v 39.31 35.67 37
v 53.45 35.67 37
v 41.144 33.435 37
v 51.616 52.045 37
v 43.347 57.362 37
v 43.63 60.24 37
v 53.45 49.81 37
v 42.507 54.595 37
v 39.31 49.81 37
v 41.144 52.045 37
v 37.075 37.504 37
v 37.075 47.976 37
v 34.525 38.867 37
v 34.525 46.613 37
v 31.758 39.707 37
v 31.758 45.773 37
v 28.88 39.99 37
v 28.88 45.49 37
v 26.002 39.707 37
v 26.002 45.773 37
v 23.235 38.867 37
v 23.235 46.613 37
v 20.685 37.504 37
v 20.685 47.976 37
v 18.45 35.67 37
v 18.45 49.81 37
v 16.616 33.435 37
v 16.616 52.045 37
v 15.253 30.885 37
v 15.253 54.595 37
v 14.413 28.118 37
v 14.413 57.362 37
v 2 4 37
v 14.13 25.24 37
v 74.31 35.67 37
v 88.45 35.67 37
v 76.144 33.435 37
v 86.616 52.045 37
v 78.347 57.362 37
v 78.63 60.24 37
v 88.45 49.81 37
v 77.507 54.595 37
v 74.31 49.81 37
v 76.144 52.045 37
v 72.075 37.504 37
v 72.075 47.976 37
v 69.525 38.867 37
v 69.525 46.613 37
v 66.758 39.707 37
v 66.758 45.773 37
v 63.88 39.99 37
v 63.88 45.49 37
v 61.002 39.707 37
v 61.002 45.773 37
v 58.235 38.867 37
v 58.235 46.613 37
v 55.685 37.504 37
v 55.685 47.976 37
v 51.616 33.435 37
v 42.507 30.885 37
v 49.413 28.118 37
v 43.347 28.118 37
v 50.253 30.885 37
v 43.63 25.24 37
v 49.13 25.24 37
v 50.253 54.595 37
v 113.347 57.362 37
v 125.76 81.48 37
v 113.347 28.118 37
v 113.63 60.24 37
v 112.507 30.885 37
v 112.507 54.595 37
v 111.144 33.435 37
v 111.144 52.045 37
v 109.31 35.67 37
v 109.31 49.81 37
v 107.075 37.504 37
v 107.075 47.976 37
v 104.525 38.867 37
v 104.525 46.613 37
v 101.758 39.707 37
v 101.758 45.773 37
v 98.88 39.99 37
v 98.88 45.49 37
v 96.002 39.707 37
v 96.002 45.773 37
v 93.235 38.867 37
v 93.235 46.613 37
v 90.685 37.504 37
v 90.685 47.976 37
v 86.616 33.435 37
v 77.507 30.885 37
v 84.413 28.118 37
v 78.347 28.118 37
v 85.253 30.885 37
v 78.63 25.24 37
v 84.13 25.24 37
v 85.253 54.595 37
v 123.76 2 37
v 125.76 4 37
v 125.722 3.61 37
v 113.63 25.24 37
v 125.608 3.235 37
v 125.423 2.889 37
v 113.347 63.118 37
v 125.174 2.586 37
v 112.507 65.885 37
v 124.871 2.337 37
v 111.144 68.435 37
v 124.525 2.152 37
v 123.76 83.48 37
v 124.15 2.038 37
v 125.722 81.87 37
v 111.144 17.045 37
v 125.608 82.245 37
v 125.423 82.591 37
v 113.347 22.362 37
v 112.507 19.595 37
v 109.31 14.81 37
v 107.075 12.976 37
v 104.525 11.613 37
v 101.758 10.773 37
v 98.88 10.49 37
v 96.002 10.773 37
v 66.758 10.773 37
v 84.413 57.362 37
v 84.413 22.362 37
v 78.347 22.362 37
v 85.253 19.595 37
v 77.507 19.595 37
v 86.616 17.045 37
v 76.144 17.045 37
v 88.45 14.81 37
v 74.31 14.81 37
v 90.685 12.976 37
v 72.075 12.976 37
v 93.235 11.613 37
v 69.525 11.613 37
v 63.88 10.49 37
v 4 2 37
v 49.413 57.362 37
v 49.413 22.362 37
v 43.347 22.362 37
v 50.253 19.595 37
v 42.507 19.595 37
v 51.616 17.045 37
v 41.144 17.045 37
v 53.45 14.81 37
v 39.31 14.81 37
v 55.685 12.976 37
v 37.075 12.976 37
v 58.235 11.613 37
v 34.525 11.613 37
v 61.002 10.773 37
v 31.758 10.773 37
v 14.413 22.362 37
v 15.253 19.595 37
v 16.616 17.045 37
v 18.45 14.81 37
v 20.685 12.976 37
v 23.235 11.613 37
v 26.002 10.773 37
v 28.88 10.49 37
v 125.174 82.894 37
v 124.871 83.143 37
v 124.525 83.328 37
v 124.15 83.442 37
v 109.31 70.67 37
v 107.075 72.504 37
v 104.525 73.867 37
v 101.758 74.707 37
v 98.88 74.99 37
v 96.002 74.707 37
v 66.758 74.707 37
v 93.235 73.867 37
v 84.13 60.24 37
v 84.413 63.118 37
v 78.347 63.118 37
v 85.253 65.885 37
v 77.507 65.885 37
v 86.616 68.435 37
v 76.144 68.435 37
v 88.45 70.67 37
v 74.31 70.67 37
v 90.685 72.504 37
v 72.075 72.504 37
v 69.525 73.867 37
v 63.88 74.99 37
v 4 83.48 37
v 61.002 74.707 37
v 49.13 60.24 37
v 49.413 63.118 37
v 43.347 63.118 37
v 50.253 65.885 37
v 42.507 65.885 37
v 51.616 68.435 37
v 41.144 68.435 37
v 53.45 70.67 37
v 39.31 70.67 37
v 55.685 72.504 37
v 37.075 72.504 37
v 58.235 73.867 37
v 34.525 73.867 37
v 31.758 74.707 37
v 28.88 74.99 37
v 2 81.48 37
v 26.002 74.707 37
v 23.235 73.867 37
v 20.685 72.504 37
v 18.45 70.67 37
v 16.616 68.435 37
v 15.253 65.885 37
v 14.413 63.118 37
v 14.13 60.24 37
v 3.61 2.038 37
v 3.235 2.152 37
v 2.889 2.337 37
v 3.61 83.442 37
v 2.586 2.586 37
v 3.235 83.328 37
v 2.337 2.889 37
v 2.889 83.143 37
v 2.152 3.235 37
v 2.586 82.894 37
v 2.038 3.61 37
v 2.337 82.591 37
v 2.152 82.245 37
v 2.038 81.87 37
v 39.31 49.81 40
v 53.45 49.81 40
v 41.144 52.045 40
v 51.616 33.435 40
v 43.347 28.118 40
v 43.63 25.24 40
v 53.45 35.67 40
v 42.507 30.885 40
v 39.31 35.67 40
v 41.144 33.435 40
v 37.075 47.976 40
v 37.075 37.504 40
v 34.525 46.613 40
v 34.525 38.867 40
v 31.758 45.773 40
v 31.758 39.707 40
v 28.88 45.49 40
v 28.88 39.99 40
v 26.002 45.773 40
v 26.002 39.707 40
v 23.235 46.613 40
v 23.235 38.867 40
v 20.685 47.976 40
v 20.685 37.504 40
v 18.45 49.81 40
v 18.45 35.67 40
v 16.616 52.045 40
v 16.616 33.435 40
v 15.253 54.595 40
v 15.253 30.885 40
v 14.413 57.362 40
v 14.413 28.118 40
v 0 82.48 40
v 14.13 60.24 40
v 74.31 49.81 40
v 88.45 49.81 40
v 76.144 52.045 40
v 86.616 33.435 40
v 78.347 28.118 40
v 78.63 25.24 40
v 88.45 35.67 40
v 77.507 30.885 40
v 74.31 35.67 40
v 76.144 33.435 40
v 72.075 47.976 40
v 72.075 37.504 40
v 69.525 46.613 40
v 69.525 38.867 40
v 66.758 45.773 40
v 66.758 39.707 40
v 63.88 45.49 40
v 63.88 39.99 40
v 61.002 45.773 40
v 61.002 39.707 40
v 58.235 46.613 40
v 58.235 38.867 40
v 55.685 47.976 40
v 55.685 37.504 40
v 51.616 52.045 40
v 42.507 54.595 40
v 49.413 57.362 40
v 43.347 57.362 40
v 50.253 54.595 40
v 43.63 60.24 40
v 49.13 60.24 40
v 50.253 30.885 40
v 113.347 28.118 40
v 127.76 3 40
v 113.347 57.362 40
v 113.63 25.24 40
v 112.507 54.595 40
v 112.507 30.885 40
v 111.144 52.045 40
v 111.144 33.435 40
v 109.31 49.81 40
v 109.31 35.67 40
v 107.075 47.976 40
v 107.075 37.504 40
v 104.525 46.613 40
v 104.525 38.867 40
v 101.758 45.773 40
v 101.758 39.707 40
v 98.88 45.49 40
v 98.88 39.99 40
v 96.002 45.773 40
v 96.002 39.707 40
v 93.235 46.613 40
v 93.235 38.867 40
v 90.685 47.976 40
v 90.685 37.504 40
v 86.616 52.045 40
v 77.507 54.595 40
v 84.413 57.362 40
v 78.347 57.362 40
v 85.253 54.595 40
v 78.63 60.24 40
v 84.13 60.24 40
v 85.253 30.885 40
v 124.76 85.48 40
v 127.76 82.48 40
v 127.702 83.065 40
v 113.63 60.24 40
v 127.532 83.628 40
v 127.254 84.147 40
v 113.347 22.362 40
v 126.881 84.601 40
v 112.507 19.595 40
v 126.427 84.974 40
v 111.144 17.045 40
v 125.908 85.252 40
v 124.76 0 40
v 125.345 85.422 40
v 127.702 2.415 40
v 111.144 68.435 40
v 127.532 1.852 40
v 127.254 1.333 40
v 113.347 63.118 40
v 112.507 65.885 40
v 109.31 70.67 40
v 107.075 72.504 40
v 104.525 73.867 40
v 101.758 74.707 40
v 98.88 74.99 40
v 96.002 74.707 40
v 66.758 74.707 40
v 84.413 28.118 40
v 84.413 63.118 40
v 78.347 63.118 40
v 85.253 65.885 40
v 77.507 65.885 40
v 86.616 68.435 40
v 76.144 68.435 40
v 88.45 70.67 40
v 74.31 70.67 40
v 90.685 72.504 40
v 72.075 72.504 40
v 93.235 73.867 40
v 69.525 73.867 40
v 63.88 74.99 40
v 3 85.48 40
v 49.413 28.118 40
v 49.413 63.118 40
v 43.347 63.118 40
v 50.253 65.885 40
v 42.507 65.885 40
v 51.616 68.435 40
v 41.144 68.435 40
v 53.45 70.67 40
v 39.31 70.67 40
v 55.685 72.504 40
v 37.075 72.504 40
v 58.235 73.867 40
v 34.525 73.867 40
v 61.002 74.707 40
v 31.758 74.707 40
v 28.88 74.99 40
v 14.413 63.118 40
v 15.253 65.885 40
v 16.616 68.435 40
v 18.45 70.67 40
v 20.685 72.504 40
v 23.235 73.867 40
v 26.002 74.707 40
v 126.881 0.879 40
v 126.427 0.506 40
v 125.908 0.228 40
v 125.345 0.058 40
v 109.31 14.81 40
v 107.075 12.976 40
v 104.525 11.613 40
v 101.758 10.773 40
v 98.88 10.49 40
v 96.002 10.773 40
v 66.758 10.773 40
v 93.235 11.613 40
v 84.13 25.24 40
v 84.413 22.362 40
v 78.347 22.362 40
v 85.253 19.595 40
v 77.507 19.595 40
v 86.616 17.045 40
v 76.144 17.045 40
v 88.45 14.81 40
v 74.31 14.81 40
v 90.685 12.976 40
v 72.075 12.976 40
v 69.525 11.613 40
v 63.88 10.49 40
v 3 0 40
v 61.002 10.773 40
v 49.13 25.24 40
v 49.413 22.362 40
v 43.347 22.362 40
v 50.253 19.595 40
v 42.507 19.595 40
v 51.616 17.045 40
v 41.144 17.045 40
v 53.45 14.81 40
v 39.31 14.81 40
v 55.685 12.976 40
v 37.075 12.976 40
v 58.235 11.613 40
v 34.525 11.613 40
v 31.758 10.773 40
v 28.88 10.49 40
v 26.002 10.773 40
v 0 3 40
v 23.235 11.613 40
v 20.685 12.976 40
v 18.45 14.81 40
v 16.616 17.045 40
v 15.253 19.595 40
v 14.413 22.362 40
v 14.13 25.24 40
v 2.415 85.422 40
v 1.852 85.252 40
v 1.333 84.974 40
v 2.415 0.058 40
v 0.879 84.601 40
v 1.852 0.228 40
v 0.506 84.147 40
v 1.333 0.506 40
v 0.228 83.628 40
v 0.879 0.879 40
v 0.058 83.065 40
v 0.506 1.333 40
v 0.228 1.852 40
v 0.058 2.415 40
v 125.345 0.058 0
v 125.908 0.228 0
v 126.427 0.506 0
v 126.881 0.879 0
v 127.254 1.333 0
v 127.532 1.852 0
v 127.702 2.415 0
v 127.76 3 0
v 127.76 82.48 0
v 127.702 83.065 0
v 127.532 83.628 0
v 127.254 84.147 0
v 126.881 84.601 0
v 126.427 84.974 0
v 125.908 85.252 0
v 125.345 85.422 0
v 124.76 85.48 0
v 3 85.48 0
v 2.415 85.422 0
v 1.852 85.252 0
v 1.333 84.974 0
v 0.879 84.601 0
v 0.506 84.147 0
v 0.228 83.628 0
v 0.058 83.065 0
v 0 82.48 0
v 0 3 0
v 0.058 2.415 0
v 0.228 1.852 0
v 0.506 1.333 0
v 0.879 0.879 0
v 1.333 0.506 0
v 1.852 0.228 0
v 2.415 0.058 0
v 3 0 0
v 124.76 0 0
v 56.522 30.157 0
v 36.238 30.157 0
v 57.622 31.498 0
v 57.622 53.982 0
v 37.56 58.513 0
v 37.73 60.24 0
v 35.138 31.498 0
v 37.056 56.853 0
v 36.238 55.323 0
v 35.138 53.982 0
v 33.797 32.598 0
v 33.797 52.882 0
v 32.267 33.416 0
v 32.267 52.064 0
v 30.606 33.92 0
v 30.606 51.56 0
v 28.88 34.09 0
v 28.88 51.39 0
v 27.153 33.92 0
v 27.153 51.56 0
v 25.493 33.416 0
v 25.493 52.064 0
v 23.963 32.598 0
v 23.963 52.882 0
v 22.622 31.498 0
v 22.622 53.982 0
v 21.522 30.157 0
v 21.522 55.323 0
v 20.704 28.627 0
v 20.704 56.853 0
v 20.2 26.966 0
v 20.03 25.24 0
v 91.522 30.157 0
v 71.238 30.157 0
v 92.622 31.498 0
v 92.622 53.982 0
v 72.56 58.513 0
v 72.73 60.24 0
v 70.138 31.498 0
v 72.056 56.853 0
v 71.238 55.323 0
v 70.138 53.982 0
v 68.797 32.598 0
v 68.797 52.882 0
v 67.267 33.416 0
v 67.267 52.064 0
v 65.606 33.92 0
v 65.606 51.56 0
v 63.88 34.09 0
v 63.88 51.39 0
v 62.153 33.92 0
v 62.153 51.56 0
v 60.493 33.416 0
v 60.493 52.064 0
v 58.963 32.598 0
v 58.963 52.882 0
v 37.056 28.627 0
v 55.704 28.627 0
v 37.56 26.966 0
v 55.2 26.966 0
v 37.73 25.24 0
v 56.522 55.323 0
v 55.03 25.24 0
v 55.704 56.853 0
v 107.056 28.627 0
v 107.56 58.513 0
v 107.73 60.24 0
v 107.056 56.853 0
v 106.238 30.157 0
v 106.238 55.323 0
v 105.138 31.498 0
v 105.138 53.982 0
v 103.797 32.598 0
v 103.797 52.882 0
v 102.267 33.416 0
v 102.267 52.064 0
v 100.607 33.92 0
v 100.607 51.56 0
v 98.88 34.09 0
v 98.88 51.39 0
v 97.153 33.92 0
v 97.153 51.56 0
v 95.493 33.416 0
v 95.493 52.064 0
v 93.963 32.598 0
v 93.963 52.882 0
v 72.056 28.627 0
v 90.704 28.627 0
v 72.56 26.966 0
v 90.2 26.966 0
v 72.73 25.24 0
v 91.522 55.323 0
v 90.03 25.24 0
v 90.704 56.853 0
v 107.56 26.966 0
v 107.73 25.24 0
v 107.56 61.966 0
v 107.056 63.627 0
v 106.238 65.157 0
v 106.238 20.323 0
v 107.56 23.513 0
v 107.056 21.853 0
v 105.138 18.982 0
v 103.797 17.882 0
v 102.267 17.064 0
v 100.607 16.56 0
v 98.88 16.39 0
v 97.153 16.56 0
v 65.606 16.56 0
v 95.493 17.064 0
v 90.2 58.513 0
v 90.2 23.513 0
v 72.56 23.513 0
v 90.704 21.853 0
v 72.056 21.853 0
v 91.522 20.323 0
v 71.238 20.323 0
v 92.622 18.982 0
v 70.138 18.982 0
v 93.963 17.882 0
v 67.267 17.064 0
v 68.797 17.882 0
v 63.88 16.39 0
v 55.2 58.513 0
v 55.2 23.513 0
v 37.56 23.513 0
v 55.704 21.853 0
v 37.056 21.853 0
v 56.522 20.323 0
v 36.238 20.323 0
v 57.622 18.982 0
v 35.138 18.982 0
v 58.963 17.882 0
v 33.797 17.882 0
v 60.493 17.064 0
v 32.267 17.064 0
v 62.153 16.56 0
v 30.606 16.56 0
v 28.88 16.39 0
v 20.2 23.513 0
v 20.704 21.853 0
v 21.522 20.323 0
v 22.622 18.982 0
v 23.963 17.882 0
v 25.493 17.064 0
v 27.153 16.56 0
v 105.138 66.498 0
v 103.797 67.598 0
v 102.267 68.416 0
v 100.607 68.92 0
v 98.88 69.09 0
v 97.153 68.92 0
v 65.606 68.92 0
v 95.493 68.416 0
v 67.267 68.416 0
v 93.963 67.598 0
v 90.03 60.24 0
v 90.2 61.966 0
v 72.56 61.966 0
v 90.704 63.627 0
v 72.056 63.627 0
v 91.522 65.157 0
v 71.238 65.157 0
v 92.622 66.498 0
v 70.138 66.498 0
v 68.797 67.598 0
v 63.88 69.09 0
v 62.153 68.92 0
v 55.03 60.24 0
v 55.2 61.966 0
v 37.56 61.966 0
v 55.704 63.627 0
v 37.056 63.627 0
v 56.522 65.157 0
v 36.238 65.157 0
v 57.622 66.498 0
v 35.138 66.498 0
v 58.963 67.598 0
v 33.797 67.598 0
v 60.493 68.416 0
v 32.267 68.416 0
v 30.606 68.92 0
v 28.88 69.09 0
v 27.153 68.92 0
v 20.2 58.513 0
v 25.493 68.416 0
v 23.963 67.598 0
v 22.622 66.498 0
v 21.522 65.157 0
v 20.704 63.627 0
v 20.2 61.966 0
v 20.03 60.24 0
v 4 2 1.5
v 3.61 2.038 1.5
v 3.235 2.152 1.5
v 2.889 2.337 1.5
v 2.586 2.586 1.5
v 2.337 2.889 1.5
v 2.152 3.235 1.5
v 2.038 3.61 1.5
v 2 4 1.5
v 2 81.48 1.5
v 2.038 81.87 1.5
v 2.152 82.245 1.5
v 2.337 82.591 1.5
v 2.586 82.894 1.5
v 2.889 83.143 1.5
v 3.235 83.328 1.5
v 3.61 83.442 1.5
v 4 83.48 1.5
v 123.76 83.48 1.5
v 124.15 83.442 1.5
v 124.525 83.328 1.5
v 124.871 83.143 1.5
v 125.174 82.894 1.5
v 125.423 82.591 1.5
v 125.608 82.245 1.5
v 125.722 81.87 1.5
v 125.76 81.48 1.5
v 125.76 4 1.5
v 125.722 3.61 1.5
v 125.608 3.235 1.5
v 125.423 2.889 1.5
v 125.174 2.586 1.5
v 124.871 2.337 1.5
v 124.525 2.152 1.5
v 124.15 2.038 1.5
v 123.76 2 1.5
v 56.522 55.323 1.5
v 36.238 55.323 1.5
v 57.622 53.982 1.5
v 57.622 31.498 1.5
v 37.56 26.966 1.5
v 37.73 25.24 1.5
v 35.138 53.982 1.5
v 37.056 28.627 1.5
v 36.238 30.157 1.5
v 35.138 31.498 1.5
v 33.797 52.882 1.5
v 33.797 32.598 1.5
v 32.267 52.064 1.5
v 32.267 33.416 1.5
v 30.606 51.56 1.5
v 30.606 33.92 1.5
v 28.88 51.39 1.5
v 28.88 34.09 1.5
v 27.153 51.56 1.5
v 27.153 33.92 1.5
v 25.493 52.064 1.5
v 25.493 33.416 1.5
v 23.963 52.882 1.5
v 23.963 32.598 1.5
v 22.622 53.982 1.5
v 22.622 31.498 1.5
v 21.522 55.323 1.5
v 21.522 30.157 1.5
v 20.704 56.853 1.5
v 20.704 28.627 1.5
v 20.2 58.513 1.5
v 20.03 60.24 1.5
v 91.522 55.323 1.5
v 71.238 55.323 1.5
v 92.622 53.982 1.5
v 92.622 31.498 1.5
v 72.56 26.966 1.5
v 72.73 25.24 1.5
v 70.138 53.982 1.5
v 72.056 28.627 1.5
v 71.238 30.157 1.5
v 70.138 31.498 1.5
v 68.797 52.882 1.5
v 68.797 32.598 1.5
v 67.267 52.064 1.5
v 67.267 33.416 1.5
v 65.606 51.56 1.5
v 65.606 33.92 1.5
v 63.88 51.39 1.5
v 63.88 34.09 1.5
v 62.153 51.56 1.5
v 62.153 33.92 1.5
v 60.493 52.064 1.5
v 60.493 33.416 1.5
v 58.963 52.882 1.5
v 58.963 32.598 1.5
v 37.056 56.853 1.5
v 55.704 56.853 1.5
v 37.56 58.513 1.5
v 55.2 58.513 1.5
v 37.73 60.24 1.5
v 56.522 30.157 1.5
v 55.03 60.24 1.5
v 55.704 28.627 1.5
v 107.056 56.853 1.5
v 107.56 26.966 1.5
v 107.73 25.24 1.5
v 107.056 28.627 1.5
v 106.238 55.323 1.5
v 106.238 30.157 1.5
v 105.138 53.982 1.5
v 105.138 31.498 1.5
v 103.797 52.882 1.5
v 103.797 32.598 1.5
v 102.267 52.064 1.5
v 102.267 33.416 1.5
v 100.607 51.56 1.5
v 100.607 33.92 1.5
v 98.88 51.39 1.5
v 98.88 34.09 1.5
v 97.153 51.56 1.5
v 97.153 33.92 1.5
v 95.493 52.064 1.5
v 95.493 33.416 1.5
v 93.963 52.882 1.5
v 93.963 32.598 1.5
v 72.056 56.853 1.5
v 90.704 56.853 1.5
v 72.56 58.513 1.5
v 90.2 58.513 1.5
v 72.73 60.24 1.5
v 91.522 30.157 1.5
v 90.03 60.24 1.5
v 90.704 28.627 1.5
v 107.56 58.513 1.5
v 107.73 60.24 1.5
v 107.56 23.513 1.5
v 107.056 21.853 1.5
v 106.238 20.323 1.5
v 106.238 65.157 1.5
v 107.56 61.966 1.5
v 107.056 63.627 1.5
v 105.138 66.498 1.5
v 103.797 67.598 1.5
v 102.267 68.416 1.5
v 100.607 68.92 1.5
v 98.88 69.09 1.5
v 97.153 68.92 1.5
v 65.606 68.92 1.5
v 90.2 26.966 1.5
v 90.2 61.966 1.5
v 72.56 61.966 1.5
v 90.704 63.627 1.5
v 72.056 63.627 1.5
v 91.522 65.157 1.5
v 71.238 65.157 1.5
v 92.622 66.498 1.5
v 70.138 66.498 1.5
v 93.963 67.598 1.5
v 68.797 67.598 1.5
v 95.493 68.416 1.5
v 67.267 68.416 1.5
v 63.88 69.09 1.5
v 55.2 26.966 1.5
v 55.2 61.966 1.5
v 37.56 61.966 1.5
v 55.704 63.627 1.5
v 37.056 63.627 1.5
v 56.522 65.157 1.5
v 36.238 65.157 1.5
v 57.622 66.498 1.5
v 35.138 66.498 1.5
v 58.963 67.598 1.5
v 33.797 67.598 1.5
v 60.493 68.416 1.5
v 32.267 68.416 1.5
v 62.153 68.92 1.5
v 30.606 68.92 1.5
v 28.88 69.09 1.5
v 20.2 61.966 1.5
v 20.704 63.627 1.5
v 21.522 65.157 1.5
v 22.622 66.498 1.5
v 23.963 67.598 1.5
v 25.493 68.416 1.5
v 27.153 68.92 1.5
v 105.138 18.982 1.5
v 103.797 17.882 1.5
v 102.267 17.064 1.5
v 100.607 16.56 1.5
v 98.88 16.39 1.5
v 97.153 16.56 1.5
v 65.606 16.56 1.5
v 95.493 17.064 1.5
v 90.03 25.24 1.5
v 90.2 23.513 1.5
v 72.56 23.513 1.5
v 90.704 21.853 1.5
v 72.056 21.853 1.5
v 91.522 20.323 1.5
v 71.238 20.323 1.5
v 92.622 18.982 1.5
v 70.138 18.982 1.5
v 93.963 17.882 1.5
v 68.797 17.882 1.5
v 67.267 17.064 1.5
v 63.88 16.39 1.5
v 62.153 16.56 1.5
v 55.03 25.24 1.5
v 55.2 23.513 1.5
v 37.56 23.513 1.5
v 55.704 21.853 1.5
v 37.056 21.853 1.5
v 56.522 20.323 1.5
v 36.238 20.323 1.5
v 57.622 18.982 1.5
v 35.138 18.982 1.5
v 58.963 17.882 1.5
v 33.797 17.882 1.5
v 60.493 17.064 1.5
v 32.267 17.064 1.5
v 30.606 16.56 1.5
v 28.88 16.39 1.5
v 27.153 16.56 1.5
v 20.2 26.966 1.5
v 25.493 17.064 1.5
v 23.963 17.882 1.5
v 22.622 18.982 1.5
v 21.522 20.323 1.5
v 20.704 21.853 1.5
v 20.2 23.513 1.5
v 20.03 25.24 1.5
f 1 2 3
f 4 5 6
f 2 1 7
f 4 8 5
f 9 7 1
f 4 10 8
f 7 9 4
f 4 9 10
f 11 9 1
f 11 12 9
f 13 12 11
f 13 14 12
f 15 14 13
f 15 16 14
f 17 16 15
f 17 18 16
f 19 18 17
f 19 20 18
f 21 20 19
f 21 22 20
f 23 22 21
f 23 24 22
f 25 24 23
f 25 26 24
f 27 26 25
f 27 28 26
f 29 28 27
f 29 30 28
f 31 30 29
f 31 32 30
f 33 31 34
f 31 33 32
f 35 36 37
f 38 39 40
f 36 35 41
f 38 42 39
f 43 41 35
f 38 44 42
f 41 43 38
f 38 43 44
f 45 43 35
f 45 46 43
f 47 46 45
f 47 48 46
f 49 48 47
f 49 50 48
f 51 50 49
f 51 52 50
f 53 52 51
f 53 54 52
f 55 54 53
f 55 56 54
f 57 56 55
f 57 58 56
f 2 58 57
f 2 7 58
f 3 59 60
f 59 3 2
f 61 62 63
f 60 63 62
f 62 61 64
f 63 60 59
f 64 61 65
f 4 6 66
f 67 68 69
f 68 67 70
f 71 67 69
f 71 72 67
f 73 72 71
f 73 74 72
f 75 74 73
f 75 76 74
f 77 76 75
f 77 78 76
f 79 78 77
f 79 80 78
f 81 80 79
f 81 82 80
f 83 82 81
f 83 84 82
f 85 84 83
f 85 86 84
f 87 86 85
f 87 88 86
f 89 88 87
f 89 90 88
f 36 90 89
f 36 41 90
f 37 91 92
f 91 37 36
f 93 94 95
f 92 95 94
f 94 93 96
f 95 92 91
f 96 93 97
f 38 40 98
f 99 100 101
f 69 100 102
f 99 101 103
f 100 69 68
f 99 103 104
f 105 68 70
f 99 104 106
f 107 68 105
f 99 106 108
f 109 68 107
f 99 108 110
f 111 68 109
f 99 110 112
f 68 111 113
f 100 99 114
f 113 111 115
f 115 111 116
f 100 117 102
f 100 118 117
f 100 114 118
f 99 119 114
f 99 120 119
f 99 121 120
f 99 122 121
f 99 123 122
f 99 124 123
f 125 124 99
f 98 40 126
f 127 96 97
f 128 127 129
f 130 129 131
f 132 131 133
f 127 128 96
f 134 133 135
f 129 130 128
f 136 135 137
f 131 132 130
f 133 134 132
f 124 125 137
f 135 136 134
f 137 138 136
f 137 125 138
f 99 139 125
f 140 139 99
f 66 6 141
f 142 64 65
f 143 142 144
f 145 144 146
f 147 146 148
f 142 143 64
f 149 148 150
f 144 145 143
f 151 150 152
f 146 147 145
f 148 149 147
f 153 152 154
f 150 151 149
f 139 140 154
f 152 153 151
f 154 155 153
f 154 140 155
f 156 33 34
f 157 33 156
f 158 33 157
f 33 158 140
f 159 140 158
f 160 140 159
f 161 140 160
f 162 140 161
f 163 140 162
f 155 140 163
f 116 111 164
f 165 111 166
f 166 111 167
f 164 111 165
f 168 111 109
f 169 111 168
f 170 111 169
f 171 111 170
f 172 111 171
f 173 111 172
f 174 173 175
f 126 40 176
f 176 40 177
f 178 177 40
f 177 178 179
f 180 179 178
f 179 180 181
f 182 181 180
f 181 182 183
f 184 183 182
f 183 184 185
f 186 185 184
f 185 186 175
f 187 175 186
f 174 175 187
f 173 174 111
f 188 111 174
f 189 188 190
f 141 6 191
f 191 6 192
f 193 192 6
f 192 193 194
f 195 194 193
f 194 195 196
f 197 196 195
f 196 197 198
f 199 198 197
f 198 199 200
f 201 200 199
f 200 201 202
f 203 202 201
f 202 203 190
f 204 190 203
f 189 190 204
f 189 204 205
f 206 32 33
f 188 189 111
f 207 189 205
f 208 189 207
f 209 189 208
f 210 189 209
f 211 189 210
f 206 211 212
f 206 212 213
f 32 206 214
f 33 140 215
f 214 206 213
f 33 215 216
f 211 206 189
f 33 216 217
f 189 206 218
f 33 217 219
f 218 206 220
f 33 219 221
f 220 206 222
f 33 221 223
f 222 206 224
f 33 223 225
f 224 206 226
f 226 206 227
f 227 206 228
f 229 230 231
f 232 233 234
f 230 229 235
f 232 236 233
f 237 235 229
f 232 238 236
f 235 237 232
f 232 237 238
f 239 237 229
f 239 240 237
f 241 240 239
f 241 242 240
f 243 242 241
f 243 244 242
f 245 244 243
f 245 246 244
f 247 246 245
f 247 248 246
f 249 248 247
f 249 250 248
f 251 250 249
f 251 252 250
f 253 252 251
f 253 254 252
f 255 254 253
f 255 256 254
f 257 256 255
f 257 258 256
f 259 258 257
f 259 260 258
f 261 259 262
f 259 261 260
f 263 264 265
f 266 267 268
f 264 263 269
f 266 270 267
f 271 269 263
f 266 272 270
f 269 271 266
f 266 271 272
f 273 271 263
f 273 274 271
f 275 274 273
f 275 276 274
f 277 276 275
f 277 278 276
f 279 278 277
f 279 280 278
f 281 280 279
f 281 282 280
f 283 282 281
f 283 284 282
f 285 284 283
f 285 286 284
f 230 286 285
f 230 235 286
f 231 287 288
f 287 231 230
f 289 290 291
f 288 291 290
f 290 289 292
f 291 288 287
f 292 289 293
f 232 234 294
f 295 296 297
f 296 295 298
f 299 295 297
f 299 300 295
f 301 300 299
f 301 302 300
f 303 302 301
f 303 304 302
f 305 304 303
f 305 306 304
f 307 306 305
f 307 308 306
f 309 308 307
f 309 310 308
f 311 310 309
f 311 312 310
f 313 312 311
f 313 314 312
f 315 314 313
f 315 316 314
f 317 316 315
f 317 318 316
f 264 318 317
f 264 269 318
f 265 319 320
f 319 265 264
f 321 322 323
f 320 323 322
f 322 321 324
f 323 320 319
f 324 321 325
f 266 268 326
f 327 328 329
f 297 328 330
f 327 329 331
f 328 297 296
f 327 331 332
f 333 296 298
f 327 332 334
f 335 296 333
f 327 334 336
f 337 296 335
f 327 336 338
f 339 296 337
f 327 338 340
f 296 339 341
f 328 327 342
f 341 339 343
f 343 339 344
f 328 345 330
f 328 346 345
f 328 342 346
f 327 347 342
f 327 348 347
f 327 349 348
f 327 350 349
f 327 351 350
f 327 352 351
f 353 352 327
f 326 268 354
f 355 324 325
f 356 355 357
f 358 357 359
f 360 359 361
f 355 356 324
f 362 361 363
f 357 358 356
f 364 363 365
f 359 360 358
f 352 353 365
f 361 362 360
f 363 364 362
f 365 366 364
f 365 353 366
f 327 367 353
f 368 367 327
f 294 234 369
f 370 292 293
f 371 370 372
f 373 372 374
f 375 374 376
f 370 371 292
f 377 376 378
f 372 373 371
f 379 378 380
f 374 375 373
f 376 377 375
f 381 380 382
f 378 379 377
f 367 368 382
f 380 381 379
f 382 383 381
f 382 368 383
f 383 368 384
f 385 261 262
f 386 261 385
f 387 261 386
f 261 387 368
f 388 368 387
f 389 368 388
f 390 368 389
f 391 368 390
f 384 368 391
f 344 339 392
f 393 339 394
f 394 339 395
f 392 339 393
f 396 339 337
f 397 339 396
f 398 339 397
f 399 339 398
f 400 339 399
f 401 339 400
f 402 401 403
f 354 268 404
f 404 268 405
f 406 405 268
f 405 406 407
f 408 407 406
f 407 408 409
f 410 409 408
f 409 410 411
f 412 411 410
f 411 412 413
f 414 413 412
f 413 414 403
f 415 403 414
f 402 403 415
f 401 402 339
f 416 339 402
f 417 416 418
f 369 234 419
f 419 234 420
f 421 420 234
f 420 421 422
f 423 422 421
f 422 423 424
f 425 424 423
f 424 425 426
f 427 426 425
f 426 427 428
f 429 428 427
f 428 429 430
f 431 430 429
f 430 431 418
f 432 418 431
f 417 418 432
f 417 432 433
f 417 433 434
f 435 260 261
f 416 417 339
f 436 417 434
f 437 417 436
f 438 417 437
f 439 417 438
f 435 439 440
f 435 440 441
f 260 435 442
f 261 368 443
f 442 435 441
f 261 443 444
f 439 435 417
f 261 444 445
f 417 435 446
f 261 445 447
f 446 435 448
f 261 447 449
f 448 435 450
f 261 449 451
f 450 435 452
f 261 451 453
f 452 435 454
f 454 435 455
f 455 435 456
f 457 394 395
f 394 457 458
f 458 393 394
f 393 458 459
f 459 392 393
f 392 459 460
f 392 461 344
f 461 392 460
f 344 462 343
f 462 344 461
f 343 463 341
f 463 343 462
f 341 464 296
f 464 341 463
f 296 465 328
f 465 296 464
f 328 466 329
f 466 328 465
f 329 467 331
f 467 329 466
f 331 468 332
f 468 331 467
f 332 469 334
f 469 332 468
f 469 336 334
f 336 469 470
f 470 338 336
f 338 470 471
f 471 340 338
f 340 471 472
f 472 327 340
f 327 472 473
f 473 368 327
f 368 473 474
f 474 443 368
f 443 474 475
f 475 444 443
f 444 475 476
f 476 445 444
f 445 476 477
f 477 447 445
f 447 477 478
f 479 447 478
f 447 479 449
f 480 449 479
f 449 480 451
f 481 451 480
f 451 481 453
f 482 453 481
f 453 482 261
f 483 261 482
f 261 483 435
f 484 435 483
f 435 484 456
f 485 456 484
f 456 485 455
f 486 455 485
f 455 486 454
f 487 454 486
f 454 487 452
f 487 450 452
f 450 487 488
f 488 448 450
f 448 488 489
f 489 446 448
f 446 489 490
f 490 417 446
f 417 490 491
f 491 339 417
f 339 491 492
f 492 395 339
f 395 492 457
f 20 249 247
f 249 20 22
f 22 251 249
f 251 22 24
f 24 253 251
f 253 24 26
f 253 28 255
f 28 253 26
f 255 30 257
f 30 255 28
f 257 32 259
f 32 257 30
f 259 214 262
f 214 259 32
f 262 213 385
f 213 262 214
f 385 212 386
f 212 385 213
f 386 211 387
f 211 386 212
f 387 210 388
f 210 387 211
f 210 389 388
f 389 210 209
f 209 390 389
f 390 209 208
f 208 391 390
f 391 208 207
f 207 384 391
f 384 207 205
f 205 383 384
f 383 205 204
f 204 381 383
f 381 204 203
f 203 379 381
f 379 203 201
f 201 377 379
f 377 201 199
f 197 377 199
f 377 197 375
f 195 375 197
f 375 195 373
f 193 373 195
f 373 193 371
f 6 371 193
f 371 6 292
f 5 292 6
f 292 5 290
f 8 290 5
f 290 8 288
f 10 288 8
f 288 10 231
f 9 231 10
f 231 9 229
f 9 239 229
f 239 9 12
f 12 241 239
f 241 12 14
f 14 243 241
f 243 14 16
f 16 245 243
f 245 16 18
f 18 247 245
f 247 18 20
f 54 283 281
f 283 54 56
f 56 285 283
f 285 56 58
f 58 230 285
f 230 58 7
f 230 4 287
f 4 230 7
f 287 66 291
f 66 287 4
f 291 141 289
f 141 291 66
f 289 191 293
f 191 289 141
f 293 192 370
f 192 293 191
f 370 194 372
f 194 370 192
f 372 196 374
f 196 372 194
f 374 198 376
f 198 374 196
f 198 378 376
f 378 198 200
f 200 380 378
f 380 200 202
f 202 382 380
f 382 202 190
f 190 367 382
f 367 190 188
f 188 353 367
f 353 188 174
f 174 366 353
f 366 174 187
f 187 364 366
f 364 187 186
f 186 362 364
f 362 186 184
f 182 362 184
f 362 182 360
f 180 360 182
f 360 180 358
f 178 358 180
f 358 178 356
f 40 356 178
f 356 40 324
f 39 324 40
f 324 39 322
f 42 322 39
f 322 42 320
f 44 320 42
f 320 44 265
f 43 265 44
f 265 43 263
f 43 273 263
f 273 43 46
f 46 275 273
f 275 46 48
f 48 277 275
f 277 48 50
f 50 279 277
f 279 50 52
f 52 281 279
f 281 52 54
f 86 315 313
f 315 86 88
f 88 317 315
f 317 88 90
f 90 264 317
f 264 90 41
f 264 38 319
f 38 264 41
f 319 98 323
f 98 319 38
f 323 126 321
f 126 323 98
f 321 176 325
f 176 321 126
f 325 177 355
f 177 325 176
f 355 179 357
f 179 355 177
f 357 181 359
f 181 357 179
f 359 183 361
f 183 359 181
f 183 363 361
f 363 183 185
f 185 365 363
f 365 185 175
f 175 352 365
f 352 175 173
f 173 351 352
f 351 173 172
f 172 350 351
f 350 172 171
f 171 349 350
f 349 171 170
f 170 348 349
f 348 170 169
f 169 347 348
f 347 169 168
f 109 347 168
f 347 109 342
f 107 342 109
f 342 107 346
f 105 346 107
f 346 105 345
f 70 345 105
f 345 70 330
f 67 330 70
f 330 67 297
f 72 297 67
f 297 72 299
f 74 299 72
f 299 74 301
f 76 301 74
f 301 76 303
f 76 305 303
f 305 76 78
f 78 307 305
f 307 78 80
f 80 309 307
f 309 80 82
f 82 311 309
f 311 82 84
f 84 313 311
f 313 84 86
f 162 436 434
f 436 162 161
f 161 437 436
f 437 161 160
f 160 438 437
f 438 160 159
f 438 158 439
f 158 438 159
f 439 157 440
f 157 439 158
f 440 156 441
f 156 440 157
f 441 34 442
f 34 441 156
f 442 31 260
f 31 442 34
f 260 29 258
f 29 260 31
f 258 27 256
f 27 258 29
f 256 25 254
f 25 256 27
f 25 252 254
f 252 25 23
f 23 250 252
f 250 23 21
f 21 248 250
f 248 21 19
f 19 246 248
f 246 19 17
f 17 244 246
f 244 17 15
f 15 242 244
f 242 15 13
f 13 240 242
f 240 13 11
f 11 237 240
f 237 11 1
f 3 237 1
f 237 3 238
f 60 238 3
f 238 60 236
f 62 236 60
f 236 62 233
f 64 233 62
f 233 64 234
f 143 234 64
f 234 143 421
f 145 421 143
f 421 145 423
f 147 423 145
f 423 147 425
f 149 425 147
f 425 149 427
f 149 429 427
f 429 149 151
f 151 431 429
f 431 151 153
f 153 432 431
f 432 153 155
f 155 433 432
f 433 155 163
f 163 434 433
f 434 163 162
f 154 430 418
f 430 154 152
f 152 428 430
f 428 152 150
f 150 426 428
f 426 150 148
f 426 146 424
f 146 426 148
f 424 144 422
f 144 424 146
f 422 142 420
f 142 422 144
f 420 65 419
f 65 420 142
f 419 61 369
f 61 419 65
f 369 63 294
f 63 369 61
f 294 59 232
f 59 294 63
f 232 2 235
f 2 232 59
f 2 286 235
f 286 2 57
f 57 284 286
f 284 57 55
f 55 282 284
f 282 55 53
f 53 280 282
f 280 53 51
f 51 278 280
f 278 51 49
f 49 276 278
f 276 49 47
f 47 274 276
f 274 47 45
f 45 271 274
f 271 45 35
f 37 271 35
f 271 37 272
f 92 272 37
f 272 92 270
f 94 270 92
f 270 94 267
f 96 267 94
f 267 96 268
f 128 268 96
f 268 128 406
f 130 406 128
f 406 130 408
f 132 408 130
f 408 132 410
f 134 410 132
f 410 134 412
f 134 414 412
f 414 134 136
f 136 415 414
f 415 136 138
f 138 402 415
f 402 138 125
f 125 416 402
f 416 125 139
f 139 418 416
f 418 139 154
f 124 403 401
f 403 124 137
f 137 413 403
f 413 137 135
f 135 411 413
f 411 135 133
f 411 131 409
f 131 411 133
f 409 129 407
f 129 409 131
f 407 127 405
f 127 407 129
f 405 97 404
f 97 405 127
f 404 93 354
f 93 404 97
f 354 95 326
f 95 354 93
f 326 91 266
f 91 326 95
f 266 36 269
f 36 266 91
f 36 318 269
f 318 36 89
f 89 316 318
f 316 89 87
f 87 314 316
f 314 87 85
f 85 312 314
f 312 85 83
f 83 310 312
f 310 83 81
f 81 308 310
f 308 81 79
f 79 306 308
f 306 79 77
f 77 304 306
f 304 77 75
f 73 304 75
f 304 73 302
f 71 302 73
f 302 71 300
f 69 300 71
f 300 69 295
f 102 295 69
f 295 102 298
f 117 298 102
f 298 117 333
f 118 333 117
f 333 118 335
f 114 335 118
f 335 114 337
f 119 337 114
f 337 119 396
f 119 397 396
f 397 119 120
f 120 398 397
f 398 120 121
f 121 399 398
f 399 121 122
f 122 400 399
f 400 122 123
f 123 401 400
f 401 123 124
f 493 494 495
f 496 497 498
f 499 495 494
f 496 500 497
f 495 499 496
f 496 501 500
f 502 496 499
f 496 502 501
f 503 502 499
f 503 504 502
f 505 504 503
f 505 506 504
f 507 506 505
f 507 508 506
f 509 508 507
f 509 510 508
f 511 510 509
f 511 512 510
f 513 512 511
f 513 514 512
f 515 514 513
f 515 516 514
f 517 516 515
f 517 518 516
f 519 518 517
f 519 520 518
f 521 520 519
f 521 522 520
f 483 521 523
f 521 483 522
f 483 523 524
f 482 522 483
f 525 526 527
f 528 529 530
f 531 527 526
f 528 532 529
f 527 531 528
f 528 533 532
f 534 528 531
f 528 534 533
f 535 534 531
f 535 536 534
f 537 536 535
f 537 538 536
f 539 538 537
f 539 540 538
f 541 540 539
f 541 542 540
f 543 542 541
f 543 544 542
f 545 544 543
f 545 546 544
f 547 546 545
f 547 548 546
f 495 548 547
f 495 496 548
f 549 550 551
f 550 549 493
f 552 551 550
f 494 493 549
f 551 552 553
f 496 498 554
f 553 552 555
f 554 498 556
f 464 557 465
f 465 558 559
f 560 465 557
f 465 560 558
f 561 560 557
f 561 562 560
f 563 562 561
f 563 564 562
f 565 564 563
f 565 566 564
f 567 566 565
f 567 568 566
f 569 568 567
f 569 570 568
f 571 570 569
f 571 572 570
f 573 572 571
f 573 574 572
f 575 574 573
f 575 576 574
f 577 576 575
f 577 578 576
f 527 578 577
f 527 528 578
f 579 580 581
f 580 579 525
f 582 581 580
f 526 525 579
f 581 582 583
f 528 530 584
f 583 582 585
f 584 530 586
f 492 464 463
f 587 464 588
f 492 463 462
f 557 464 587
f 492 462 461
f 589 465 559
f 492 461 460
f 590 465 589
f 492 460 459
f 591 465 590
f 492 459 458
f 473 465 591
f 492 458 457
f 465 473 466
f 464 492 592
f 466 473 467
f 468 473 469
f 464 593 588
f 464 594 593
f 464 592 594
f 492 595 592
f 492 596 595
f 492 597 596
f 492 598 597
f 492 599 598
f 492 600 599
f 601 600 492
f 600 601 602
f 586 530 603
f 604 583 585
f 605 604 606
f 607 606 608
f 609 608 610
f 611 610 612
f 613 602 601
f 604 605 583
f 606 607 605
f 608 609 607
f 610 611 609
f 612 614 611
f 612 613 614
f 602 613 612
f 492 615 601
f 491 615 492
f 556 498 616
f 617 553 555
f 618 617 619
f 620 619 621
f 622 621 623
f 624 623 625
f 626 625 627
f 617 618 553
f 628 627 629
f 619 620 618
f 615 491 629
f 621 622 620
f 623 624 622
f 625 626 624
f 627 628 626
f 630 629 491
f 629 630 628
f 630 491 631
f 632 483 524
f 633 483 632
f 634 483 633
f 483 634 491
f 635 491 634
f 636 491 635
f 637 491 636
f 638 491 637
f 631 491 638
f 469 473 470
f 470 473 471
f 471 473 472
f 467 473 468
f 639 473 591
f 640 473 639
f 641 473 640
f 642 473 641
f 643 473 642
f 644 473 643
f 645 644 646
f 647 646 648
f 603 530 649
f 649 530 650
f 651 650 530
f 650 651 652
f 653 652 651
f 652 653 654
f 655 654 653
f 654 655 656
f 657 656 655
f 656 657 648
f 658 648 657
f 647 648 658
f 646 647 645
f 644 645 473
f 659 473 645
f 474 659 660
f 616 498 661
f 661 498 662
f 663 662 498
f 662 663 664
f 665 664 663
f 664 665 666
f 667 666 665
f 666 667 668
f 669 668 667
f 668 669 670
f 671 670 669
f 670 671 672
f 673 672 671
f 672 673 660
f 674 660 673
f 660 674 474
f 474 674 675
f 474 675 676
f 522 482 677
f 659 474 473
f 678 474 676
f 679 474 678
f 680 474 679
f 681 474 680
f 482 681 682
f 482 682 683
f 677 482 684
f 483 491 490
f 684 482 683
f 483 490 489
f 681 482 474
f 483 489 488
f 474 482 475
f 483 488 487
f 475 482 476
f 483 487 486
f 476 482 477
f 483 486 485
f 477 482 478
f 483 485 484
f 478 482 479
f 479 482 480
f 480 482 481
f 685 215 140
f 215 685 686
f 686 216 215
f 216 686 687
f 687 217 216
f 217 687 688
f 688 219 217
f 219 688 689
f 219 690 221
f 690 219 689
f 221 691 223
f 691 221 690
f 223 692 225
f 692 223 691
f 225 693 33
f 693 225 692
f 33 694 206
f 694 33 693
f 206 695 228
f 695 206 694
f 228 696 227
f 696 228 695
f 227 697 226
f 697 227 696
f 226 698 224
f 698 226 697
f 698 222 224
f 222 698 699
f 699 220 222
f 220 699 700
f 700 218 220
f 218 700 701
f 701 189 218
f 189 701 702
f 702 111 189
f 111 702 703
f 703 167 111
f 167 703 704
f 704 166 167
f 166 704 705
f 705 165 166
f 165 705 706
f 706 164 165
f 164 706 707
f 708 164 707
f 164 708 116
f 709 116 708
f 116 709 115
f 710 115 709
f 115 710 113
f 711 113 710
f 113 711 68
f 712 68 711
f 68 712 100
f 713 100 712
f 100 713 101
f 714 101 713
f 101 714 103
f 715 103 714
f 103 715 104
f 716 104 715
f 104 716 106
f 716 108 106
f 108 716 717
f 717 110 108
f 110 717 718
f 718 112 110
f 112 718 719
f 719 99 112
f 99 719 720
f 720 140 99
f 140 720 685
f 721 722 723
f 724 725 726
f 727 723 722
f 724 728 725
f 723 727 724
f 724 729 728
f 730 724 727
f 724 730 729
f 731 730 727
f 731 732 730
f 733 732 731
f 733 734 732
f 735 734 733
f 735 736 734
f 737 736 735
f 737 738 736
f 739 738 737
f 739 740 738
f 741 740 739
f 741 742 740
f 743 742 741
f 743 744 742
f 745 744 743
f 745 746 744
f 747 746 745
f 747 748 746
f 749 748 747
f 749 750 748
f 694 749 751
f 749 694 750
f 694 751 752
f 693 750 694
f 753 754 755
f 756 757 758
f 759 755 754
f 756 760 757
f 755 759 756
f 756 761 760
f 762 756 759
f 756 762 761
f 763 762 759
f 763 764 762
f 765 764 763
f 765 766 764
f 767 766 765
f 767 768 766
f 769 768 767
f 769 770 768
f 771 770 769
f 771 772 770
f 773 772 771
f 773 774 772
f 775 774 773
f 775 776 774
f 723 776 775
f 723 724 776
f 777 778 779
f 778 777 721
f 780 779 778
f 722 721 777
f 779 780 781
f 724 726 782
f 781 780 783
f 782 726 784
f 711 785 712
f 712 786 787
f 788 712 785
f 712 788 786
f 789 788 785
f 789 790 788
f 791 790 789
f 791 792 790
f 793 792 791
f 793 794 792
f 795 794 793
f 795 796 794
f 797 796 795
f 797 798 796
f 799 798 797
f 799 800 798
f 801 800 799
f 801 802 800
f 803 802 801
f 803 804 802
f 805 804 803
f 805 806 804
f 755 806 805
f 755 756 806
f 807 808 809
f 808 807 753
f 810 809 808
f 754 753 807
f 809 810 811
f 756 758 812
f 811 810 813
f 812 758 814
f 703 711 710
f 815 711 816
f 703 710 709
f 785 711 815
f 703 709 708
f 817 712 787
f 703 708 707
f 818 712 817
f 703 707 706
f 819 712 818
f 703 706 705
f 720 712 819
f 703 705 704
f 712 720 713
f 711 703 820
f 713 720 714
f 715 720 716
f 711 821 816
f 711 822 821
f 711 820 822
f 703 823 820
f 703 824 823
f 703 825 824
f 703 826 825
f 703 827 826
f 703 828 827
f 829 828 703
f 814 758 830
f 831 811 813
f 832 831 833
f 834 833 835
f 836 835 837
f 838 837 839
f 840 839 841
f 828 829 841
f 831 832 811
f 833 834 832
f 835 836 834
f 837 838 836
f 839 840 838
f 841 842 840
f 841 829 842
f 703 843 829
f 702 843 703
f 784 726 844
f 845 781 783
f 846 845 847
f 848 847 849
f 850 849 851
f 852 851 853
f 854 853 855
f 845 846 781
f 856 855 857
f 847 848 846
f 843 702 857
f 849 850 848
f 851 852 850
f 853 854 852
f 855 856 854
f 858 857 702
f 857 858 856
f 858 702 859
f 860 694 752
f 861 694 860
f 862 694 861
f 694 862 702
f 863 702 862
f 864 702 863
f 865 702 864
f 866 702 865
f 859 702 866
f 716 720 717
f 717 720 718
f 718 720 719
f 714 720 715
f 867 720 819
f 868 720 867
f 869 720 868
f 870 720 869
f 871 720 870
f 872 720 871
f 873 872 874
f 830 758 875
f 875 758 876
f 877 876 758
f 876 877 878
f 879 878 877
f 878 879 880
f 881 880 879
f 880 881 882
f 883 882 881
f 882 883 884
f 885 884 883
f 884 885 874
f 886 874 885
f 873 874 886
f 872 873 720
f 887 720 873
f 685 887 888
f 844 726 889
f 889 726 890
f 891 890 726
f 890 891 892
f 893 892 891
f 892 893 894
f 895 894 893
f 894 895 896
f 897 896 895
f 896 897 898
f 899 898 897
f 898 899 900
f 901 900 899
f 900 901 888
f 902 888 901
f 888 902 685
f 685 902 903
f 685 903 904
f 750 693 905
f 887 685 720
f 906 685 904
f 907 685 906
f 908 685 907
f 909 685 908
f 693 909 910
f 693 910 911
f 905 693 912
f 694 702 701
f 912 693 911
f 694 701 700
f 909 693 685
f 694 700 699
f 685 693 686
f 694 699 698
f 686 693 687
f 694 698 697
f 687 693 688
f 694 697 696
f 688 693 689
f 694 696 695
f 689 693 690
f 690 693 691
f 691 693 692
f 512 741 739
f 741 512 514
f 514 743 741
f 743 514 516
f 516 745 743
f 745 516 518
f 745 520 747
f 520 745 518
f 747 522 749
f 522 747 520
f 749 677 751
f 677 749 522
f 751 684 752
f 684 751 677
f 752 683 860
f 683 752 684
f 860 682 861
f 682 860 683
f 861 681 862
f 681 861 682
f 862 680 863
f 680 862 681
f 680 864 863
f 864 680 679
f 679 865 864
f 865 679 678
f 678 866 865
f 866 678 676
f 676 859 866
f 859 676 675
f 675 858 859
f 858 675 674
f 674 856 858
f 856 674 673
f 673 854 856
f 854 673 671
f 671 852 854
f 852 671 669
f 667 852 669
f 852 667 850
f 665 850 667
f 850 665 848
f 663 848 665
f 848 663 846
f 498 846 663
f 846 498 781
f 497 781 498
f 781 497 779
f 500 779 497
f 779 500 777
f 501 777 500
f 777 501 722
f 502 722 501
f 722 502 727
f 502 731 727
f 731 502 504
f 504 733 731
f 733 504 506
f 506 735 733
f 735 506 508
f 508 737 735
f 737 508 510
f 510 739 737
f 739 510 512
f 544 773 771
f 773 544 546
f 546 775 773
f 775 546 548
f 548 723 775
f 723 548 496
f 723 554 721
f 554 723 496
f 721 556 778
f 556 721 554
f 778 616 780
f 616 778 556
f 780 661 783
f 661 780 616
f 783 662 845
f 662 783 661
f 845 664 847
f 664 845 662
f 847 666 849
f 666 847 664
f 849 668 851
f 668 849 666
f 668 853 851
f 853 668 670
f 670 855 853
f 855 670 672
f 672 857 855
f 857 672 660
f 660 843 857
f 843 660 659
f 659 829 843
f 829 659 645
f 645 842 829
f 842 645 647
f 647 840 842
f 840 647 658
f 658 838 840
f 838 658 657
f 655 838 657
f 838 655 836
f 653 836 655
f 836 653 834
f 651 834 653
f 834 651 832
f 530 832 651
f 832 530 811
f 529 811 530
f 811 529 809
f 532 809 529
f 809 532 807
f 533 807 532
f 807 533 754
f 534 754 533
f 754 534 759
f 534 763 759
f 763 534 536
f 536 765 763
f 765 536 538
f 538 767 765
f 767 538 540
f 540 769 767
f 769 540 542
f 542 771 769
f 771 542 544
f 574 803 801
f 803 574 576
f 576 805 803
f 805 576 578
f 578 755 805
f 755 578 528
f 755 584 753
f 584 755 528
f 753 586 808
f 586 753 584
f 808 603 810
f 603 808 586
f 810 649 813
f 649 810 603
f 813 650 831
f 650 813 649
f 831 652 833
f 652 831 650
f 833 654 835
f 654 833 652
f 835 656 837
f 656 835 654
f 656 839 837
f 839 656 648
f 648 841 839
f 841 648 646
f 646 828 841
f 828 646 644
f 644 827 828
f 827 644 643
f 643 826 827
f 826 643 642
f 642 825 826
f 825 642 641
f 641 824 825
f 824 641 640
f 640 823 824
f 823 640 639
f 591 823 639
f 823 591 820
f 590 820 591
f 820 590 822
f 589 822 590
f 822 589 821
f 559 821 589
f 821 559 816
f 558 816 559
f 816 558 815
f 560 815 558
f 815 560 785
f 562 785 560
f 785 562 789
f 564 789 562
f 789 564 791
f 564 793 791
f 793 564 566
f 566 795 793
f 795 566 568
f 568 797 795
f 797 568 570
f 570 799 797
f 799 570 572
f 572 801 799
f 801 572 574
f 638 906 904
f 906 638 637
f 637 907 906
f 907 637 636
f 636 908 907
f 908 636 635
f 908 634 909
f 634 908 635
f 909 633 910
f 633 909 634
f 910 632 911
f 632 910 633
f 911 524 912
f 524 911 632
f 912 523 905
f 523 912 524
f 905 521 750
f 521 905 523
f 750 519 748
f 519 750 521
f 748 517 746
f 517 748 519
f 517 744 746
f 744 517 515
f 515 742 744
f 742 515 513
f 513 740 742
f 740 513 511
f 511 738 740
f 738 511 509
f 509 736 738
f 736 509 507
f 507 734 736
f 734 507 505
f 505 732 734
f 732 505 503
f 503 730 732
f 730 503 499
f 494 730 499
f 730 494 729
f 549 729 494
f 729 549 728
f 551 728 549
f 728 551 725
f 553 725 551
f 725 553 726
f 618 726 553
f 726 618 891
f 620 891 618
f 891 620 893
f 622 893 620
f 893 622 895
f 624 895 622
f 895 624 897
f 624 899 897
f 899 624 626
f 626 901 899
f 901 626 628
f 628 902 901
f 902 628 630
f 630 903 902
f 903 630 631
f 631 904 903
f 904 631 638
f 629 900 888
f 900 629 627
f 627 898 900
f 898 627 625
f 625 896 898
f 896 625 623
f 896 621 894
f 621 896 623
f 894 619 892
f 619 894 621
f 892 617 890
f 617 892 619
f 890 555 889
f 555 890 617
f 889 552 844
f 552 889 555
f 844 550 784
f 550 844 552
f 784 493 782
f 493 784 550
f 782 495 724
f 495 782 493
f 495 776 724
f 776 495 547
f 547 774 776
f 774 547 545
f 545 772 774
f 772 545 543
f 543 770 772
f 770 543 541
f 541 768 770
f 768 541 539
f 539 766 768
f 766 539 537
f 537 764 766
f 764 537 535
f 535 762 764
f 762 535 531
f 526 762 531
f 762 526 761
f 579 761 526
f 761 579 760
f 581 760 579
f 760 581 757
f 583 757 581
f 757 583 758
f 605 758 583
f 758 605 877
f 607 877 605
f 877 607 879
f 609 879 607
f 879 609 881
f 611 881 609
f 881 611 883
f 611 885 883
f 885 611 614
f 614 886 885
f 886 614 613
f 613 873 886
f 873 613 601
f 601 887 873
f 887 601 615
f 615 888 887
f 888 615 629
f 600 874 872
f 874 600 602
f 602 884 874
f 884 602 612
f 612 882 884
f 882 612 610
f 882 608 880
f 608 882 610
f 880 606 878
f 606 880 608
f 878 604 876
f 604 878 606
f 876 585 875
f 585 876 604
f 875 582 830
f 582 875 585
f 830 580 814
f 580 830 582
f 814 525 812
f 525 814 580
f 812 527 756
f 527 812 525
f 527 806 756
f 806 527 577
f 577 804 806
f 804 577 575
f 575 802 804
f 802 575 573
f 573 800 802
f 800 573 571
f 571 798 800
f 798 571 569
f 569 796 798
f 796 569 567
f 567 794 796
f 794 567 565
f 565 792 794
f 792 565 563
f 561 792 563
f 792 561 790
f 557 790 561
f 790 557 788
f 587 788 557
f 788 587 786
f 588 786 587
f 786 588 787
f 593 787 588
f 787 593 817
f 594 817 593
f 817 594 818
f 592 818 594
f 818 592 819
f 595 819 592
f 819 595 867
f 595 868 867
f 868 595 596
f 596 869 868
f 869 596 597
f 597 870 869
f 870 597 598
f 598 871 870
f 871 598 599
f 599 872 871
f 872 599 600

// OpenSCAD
// file: labware.scad
// BaeBugs parametric labware library (labware twin), v0.1
// All parts are built as 2D profiles extruded in Z, so remixes render fast.
// Units: mm. SBS footprint per ANSI/SLAS 1-2004: 127.76 x 85.48.
// License: CERN-OHL-W-2.0 unless a part file says otherwise.

SBS_X = 127.76;
SBS_Y = 85.48;
$fn = 32;

// Rounded rectangle profile anchored at the origin.
module rrect(x, y, r = 3) {
    translate([r, r]) offset(r = r) square([x - 2 * r, y - 2 * r]);
}

// Grid of round holes. A1 is the back-left well, matching Opentrons/SBS naming,
// so row 0 sits at y = footprint_y - a1_y.
module hole_grid(rows, cols, pitch, hole_d, a1_x, a1_y, footprint_y) {
    for (r = [0 : rows - 1], c = [0 : cols - 1])
        translate([a1_x + c * pitch, footprint_y - a1_y - r * pitch]) circle(d = hole_d);
}

// Tube or tip rack plate: solid top deck with holes, plus a skirt so it sits in a deck slot.
module sbs_plate(rows = 8, cols = 12, pitch = 9, hole_d = 5.8, height = 20,
                 a1_x = 14.38, a1_y = 11.24, footprint_x = SBS_X, footprint_y = SBS_Y,
                 deck = 3, skirt = 2) {
    // top deck
    translate([0, 0, height - deck]) linear_extrude(deck)
        difference() {
            rrect(footprint_x, footprint_y);
            hole_grid(rows, cols, pitch, hole_d, a1_x, a1_y, footprint_y);
        }
    // skirt wall
    linear_extrude(height - deck)
        difference() {
            rrect(footprint_x, footprint_y);
            translate([skirt, skirt]) rrect(footprint_x - 2 * skirt, footprint_y - 2 * skirt, 2);
        }
    // bottom locator ring (keeps tubes from sliding, 1.5 mm floor with smaller holes)
    linear_extrude(1.5)
        difference() {
            translate([skirt, skirt]) rrect(footprint_x - 2 * skirt, footprint_y - 2 * skirt, 2);
            hole_grid(rows, cols, pitch, hole_d * 0.6, a1_x, a1_y, footprint_y);
        }
}

// Flat grid insert (e.g. 10x10 cryo box insert).
module grid_insert(rows = 10, cols = 10, pitch = 13, hole_d = 12.8, height = 12,
                   a1_x = 8, a1_y = 8, footprint_x = 133, footprint_y = 133) {
    linear_extrude(height)
        difference() {
            rrect(footprint_x, footprint_y, 2);
            hole_grid(rows, cols, pitch, hole_d, a1_x, a1_y, footprint_y);
        }
}

// Open lipped frame: the "folder" frame. Inserts rest on the inner lip.
module frame(footprint_x = SBS_X, footprint_y = SBS_Y, height = 12, wall = 5, lip = 2, lip_z = 2) {
    linear_extrude(height)
        difference() {
            rrect(footprint_x, footprint_y);
            translate([wall, wall]) square([footprint_x - 2 * wall, footprint_y - 2 * wall]);
        }
    linear_extrude(lip_z)
        difference() {
            translate([wall - 0.01, wall - 0.01]) square([footprint_x - 2 * wall + 0.02, footprint_y - 2 * wall + 0.02]);
            translate([wall + lip, wall + lip]) square([footprint_x - 2 * (wall + lip), footprint_y - 2 * (wall + lip)]);
        }
}

// Frame split into rows x cols windows, each with a perforated floor (printed mesh).
module grid_frame(footprint_x = SBS_X, footprint_y = SBS_Y, height = 8, wall = 4, rows = 2, cols = 3,
                  rib = 3, floor = 1.2, mesh_hole = 2, mesh_pitch = 3) {
    ix = footprint_x - 2 * wall;
    iy = footprint_y - 2 * wall;
    cw = (ix - (cols - 1) * rib) / cols;
    ch = (iy - (rows - 1) * rib) / rows;
    // walls and ribs
    linear_extrude(height)
        difference() {
            rrect(footprint_x, footprint_y);
            for (r = [0 : rows - 1], c = [0 : cols - 1])
                translate([wall + c * (cw + rib), wall + r * (ch + rib)]) square([cw, ch]);
        }
    // perforated floor (square holes print cleanly without supports)
    linear_extrude(floor)
        difference() {
            translate([wall, wall]) square([ix, iy]);
            for (r = [0 : rows - 1], c = [0 : cols - 1])
                translate([wall + c * (cw + rib), wall + r * (ch + rib)])
                    for (i = [0 : floor((cw - mesh_pitch) / mesh_pitch)], j = [0 : floor((ch - mesh_pitch) / mesh_pitch)])
                        translate([mesh_pitch * 0.75 + i * mesh_pitch, mesh_pitch * 0.75 + j * mesh_pitch])
                            square(mesh_hole, center = true);
        }
}

// Hexagonal lattice clipped to a rectangle with a solid rim.
module honeycomb(footprint_x = 117, footprint_y = 75, height = 6, cell = 14, wall = 1.6, rim = 2) {
    dx = cell;                 // across-flats pitch
    dy = cell * sqrt(3) / 2;   // row pitch
    linear_extrude(height)
        difference() {
            square([footprint_x, footprint_y]);
            intersection() {
                translate([rim, rim]) square([footprint_x - 2 * rim, footprint_y - 2 * rim]);
                for (j = [0 : ceil(footprint_y / dy)], i = [-1 : ceil(footprint_x / dx)])
                    translate([i * dx + (j % 2) * dx / 2, j * dy])
                        rotate(30) circle(d = (cell - wall) / cos(30), $fn = 6);
            }
        }
}
// main file
// SBS 2x3 rack, 50 mL conicals
// part id: print-conical-50  license: CERN-OHL-W-2.0
// derived from: obs-conical-50, obs-rack-4way-orange
// Edit the parameters to remix. Catalog dimensions marked est. need calipers before a production run.
use <labware.scad>

sbs_plate(rows = 2, cols = 3, pitch = 35.0, hole_d = 29.5, height = 40.0, a1_x = 28.88, a1_y = 25.24, footprint_x = 127.76, footprint_y = 85.48);
